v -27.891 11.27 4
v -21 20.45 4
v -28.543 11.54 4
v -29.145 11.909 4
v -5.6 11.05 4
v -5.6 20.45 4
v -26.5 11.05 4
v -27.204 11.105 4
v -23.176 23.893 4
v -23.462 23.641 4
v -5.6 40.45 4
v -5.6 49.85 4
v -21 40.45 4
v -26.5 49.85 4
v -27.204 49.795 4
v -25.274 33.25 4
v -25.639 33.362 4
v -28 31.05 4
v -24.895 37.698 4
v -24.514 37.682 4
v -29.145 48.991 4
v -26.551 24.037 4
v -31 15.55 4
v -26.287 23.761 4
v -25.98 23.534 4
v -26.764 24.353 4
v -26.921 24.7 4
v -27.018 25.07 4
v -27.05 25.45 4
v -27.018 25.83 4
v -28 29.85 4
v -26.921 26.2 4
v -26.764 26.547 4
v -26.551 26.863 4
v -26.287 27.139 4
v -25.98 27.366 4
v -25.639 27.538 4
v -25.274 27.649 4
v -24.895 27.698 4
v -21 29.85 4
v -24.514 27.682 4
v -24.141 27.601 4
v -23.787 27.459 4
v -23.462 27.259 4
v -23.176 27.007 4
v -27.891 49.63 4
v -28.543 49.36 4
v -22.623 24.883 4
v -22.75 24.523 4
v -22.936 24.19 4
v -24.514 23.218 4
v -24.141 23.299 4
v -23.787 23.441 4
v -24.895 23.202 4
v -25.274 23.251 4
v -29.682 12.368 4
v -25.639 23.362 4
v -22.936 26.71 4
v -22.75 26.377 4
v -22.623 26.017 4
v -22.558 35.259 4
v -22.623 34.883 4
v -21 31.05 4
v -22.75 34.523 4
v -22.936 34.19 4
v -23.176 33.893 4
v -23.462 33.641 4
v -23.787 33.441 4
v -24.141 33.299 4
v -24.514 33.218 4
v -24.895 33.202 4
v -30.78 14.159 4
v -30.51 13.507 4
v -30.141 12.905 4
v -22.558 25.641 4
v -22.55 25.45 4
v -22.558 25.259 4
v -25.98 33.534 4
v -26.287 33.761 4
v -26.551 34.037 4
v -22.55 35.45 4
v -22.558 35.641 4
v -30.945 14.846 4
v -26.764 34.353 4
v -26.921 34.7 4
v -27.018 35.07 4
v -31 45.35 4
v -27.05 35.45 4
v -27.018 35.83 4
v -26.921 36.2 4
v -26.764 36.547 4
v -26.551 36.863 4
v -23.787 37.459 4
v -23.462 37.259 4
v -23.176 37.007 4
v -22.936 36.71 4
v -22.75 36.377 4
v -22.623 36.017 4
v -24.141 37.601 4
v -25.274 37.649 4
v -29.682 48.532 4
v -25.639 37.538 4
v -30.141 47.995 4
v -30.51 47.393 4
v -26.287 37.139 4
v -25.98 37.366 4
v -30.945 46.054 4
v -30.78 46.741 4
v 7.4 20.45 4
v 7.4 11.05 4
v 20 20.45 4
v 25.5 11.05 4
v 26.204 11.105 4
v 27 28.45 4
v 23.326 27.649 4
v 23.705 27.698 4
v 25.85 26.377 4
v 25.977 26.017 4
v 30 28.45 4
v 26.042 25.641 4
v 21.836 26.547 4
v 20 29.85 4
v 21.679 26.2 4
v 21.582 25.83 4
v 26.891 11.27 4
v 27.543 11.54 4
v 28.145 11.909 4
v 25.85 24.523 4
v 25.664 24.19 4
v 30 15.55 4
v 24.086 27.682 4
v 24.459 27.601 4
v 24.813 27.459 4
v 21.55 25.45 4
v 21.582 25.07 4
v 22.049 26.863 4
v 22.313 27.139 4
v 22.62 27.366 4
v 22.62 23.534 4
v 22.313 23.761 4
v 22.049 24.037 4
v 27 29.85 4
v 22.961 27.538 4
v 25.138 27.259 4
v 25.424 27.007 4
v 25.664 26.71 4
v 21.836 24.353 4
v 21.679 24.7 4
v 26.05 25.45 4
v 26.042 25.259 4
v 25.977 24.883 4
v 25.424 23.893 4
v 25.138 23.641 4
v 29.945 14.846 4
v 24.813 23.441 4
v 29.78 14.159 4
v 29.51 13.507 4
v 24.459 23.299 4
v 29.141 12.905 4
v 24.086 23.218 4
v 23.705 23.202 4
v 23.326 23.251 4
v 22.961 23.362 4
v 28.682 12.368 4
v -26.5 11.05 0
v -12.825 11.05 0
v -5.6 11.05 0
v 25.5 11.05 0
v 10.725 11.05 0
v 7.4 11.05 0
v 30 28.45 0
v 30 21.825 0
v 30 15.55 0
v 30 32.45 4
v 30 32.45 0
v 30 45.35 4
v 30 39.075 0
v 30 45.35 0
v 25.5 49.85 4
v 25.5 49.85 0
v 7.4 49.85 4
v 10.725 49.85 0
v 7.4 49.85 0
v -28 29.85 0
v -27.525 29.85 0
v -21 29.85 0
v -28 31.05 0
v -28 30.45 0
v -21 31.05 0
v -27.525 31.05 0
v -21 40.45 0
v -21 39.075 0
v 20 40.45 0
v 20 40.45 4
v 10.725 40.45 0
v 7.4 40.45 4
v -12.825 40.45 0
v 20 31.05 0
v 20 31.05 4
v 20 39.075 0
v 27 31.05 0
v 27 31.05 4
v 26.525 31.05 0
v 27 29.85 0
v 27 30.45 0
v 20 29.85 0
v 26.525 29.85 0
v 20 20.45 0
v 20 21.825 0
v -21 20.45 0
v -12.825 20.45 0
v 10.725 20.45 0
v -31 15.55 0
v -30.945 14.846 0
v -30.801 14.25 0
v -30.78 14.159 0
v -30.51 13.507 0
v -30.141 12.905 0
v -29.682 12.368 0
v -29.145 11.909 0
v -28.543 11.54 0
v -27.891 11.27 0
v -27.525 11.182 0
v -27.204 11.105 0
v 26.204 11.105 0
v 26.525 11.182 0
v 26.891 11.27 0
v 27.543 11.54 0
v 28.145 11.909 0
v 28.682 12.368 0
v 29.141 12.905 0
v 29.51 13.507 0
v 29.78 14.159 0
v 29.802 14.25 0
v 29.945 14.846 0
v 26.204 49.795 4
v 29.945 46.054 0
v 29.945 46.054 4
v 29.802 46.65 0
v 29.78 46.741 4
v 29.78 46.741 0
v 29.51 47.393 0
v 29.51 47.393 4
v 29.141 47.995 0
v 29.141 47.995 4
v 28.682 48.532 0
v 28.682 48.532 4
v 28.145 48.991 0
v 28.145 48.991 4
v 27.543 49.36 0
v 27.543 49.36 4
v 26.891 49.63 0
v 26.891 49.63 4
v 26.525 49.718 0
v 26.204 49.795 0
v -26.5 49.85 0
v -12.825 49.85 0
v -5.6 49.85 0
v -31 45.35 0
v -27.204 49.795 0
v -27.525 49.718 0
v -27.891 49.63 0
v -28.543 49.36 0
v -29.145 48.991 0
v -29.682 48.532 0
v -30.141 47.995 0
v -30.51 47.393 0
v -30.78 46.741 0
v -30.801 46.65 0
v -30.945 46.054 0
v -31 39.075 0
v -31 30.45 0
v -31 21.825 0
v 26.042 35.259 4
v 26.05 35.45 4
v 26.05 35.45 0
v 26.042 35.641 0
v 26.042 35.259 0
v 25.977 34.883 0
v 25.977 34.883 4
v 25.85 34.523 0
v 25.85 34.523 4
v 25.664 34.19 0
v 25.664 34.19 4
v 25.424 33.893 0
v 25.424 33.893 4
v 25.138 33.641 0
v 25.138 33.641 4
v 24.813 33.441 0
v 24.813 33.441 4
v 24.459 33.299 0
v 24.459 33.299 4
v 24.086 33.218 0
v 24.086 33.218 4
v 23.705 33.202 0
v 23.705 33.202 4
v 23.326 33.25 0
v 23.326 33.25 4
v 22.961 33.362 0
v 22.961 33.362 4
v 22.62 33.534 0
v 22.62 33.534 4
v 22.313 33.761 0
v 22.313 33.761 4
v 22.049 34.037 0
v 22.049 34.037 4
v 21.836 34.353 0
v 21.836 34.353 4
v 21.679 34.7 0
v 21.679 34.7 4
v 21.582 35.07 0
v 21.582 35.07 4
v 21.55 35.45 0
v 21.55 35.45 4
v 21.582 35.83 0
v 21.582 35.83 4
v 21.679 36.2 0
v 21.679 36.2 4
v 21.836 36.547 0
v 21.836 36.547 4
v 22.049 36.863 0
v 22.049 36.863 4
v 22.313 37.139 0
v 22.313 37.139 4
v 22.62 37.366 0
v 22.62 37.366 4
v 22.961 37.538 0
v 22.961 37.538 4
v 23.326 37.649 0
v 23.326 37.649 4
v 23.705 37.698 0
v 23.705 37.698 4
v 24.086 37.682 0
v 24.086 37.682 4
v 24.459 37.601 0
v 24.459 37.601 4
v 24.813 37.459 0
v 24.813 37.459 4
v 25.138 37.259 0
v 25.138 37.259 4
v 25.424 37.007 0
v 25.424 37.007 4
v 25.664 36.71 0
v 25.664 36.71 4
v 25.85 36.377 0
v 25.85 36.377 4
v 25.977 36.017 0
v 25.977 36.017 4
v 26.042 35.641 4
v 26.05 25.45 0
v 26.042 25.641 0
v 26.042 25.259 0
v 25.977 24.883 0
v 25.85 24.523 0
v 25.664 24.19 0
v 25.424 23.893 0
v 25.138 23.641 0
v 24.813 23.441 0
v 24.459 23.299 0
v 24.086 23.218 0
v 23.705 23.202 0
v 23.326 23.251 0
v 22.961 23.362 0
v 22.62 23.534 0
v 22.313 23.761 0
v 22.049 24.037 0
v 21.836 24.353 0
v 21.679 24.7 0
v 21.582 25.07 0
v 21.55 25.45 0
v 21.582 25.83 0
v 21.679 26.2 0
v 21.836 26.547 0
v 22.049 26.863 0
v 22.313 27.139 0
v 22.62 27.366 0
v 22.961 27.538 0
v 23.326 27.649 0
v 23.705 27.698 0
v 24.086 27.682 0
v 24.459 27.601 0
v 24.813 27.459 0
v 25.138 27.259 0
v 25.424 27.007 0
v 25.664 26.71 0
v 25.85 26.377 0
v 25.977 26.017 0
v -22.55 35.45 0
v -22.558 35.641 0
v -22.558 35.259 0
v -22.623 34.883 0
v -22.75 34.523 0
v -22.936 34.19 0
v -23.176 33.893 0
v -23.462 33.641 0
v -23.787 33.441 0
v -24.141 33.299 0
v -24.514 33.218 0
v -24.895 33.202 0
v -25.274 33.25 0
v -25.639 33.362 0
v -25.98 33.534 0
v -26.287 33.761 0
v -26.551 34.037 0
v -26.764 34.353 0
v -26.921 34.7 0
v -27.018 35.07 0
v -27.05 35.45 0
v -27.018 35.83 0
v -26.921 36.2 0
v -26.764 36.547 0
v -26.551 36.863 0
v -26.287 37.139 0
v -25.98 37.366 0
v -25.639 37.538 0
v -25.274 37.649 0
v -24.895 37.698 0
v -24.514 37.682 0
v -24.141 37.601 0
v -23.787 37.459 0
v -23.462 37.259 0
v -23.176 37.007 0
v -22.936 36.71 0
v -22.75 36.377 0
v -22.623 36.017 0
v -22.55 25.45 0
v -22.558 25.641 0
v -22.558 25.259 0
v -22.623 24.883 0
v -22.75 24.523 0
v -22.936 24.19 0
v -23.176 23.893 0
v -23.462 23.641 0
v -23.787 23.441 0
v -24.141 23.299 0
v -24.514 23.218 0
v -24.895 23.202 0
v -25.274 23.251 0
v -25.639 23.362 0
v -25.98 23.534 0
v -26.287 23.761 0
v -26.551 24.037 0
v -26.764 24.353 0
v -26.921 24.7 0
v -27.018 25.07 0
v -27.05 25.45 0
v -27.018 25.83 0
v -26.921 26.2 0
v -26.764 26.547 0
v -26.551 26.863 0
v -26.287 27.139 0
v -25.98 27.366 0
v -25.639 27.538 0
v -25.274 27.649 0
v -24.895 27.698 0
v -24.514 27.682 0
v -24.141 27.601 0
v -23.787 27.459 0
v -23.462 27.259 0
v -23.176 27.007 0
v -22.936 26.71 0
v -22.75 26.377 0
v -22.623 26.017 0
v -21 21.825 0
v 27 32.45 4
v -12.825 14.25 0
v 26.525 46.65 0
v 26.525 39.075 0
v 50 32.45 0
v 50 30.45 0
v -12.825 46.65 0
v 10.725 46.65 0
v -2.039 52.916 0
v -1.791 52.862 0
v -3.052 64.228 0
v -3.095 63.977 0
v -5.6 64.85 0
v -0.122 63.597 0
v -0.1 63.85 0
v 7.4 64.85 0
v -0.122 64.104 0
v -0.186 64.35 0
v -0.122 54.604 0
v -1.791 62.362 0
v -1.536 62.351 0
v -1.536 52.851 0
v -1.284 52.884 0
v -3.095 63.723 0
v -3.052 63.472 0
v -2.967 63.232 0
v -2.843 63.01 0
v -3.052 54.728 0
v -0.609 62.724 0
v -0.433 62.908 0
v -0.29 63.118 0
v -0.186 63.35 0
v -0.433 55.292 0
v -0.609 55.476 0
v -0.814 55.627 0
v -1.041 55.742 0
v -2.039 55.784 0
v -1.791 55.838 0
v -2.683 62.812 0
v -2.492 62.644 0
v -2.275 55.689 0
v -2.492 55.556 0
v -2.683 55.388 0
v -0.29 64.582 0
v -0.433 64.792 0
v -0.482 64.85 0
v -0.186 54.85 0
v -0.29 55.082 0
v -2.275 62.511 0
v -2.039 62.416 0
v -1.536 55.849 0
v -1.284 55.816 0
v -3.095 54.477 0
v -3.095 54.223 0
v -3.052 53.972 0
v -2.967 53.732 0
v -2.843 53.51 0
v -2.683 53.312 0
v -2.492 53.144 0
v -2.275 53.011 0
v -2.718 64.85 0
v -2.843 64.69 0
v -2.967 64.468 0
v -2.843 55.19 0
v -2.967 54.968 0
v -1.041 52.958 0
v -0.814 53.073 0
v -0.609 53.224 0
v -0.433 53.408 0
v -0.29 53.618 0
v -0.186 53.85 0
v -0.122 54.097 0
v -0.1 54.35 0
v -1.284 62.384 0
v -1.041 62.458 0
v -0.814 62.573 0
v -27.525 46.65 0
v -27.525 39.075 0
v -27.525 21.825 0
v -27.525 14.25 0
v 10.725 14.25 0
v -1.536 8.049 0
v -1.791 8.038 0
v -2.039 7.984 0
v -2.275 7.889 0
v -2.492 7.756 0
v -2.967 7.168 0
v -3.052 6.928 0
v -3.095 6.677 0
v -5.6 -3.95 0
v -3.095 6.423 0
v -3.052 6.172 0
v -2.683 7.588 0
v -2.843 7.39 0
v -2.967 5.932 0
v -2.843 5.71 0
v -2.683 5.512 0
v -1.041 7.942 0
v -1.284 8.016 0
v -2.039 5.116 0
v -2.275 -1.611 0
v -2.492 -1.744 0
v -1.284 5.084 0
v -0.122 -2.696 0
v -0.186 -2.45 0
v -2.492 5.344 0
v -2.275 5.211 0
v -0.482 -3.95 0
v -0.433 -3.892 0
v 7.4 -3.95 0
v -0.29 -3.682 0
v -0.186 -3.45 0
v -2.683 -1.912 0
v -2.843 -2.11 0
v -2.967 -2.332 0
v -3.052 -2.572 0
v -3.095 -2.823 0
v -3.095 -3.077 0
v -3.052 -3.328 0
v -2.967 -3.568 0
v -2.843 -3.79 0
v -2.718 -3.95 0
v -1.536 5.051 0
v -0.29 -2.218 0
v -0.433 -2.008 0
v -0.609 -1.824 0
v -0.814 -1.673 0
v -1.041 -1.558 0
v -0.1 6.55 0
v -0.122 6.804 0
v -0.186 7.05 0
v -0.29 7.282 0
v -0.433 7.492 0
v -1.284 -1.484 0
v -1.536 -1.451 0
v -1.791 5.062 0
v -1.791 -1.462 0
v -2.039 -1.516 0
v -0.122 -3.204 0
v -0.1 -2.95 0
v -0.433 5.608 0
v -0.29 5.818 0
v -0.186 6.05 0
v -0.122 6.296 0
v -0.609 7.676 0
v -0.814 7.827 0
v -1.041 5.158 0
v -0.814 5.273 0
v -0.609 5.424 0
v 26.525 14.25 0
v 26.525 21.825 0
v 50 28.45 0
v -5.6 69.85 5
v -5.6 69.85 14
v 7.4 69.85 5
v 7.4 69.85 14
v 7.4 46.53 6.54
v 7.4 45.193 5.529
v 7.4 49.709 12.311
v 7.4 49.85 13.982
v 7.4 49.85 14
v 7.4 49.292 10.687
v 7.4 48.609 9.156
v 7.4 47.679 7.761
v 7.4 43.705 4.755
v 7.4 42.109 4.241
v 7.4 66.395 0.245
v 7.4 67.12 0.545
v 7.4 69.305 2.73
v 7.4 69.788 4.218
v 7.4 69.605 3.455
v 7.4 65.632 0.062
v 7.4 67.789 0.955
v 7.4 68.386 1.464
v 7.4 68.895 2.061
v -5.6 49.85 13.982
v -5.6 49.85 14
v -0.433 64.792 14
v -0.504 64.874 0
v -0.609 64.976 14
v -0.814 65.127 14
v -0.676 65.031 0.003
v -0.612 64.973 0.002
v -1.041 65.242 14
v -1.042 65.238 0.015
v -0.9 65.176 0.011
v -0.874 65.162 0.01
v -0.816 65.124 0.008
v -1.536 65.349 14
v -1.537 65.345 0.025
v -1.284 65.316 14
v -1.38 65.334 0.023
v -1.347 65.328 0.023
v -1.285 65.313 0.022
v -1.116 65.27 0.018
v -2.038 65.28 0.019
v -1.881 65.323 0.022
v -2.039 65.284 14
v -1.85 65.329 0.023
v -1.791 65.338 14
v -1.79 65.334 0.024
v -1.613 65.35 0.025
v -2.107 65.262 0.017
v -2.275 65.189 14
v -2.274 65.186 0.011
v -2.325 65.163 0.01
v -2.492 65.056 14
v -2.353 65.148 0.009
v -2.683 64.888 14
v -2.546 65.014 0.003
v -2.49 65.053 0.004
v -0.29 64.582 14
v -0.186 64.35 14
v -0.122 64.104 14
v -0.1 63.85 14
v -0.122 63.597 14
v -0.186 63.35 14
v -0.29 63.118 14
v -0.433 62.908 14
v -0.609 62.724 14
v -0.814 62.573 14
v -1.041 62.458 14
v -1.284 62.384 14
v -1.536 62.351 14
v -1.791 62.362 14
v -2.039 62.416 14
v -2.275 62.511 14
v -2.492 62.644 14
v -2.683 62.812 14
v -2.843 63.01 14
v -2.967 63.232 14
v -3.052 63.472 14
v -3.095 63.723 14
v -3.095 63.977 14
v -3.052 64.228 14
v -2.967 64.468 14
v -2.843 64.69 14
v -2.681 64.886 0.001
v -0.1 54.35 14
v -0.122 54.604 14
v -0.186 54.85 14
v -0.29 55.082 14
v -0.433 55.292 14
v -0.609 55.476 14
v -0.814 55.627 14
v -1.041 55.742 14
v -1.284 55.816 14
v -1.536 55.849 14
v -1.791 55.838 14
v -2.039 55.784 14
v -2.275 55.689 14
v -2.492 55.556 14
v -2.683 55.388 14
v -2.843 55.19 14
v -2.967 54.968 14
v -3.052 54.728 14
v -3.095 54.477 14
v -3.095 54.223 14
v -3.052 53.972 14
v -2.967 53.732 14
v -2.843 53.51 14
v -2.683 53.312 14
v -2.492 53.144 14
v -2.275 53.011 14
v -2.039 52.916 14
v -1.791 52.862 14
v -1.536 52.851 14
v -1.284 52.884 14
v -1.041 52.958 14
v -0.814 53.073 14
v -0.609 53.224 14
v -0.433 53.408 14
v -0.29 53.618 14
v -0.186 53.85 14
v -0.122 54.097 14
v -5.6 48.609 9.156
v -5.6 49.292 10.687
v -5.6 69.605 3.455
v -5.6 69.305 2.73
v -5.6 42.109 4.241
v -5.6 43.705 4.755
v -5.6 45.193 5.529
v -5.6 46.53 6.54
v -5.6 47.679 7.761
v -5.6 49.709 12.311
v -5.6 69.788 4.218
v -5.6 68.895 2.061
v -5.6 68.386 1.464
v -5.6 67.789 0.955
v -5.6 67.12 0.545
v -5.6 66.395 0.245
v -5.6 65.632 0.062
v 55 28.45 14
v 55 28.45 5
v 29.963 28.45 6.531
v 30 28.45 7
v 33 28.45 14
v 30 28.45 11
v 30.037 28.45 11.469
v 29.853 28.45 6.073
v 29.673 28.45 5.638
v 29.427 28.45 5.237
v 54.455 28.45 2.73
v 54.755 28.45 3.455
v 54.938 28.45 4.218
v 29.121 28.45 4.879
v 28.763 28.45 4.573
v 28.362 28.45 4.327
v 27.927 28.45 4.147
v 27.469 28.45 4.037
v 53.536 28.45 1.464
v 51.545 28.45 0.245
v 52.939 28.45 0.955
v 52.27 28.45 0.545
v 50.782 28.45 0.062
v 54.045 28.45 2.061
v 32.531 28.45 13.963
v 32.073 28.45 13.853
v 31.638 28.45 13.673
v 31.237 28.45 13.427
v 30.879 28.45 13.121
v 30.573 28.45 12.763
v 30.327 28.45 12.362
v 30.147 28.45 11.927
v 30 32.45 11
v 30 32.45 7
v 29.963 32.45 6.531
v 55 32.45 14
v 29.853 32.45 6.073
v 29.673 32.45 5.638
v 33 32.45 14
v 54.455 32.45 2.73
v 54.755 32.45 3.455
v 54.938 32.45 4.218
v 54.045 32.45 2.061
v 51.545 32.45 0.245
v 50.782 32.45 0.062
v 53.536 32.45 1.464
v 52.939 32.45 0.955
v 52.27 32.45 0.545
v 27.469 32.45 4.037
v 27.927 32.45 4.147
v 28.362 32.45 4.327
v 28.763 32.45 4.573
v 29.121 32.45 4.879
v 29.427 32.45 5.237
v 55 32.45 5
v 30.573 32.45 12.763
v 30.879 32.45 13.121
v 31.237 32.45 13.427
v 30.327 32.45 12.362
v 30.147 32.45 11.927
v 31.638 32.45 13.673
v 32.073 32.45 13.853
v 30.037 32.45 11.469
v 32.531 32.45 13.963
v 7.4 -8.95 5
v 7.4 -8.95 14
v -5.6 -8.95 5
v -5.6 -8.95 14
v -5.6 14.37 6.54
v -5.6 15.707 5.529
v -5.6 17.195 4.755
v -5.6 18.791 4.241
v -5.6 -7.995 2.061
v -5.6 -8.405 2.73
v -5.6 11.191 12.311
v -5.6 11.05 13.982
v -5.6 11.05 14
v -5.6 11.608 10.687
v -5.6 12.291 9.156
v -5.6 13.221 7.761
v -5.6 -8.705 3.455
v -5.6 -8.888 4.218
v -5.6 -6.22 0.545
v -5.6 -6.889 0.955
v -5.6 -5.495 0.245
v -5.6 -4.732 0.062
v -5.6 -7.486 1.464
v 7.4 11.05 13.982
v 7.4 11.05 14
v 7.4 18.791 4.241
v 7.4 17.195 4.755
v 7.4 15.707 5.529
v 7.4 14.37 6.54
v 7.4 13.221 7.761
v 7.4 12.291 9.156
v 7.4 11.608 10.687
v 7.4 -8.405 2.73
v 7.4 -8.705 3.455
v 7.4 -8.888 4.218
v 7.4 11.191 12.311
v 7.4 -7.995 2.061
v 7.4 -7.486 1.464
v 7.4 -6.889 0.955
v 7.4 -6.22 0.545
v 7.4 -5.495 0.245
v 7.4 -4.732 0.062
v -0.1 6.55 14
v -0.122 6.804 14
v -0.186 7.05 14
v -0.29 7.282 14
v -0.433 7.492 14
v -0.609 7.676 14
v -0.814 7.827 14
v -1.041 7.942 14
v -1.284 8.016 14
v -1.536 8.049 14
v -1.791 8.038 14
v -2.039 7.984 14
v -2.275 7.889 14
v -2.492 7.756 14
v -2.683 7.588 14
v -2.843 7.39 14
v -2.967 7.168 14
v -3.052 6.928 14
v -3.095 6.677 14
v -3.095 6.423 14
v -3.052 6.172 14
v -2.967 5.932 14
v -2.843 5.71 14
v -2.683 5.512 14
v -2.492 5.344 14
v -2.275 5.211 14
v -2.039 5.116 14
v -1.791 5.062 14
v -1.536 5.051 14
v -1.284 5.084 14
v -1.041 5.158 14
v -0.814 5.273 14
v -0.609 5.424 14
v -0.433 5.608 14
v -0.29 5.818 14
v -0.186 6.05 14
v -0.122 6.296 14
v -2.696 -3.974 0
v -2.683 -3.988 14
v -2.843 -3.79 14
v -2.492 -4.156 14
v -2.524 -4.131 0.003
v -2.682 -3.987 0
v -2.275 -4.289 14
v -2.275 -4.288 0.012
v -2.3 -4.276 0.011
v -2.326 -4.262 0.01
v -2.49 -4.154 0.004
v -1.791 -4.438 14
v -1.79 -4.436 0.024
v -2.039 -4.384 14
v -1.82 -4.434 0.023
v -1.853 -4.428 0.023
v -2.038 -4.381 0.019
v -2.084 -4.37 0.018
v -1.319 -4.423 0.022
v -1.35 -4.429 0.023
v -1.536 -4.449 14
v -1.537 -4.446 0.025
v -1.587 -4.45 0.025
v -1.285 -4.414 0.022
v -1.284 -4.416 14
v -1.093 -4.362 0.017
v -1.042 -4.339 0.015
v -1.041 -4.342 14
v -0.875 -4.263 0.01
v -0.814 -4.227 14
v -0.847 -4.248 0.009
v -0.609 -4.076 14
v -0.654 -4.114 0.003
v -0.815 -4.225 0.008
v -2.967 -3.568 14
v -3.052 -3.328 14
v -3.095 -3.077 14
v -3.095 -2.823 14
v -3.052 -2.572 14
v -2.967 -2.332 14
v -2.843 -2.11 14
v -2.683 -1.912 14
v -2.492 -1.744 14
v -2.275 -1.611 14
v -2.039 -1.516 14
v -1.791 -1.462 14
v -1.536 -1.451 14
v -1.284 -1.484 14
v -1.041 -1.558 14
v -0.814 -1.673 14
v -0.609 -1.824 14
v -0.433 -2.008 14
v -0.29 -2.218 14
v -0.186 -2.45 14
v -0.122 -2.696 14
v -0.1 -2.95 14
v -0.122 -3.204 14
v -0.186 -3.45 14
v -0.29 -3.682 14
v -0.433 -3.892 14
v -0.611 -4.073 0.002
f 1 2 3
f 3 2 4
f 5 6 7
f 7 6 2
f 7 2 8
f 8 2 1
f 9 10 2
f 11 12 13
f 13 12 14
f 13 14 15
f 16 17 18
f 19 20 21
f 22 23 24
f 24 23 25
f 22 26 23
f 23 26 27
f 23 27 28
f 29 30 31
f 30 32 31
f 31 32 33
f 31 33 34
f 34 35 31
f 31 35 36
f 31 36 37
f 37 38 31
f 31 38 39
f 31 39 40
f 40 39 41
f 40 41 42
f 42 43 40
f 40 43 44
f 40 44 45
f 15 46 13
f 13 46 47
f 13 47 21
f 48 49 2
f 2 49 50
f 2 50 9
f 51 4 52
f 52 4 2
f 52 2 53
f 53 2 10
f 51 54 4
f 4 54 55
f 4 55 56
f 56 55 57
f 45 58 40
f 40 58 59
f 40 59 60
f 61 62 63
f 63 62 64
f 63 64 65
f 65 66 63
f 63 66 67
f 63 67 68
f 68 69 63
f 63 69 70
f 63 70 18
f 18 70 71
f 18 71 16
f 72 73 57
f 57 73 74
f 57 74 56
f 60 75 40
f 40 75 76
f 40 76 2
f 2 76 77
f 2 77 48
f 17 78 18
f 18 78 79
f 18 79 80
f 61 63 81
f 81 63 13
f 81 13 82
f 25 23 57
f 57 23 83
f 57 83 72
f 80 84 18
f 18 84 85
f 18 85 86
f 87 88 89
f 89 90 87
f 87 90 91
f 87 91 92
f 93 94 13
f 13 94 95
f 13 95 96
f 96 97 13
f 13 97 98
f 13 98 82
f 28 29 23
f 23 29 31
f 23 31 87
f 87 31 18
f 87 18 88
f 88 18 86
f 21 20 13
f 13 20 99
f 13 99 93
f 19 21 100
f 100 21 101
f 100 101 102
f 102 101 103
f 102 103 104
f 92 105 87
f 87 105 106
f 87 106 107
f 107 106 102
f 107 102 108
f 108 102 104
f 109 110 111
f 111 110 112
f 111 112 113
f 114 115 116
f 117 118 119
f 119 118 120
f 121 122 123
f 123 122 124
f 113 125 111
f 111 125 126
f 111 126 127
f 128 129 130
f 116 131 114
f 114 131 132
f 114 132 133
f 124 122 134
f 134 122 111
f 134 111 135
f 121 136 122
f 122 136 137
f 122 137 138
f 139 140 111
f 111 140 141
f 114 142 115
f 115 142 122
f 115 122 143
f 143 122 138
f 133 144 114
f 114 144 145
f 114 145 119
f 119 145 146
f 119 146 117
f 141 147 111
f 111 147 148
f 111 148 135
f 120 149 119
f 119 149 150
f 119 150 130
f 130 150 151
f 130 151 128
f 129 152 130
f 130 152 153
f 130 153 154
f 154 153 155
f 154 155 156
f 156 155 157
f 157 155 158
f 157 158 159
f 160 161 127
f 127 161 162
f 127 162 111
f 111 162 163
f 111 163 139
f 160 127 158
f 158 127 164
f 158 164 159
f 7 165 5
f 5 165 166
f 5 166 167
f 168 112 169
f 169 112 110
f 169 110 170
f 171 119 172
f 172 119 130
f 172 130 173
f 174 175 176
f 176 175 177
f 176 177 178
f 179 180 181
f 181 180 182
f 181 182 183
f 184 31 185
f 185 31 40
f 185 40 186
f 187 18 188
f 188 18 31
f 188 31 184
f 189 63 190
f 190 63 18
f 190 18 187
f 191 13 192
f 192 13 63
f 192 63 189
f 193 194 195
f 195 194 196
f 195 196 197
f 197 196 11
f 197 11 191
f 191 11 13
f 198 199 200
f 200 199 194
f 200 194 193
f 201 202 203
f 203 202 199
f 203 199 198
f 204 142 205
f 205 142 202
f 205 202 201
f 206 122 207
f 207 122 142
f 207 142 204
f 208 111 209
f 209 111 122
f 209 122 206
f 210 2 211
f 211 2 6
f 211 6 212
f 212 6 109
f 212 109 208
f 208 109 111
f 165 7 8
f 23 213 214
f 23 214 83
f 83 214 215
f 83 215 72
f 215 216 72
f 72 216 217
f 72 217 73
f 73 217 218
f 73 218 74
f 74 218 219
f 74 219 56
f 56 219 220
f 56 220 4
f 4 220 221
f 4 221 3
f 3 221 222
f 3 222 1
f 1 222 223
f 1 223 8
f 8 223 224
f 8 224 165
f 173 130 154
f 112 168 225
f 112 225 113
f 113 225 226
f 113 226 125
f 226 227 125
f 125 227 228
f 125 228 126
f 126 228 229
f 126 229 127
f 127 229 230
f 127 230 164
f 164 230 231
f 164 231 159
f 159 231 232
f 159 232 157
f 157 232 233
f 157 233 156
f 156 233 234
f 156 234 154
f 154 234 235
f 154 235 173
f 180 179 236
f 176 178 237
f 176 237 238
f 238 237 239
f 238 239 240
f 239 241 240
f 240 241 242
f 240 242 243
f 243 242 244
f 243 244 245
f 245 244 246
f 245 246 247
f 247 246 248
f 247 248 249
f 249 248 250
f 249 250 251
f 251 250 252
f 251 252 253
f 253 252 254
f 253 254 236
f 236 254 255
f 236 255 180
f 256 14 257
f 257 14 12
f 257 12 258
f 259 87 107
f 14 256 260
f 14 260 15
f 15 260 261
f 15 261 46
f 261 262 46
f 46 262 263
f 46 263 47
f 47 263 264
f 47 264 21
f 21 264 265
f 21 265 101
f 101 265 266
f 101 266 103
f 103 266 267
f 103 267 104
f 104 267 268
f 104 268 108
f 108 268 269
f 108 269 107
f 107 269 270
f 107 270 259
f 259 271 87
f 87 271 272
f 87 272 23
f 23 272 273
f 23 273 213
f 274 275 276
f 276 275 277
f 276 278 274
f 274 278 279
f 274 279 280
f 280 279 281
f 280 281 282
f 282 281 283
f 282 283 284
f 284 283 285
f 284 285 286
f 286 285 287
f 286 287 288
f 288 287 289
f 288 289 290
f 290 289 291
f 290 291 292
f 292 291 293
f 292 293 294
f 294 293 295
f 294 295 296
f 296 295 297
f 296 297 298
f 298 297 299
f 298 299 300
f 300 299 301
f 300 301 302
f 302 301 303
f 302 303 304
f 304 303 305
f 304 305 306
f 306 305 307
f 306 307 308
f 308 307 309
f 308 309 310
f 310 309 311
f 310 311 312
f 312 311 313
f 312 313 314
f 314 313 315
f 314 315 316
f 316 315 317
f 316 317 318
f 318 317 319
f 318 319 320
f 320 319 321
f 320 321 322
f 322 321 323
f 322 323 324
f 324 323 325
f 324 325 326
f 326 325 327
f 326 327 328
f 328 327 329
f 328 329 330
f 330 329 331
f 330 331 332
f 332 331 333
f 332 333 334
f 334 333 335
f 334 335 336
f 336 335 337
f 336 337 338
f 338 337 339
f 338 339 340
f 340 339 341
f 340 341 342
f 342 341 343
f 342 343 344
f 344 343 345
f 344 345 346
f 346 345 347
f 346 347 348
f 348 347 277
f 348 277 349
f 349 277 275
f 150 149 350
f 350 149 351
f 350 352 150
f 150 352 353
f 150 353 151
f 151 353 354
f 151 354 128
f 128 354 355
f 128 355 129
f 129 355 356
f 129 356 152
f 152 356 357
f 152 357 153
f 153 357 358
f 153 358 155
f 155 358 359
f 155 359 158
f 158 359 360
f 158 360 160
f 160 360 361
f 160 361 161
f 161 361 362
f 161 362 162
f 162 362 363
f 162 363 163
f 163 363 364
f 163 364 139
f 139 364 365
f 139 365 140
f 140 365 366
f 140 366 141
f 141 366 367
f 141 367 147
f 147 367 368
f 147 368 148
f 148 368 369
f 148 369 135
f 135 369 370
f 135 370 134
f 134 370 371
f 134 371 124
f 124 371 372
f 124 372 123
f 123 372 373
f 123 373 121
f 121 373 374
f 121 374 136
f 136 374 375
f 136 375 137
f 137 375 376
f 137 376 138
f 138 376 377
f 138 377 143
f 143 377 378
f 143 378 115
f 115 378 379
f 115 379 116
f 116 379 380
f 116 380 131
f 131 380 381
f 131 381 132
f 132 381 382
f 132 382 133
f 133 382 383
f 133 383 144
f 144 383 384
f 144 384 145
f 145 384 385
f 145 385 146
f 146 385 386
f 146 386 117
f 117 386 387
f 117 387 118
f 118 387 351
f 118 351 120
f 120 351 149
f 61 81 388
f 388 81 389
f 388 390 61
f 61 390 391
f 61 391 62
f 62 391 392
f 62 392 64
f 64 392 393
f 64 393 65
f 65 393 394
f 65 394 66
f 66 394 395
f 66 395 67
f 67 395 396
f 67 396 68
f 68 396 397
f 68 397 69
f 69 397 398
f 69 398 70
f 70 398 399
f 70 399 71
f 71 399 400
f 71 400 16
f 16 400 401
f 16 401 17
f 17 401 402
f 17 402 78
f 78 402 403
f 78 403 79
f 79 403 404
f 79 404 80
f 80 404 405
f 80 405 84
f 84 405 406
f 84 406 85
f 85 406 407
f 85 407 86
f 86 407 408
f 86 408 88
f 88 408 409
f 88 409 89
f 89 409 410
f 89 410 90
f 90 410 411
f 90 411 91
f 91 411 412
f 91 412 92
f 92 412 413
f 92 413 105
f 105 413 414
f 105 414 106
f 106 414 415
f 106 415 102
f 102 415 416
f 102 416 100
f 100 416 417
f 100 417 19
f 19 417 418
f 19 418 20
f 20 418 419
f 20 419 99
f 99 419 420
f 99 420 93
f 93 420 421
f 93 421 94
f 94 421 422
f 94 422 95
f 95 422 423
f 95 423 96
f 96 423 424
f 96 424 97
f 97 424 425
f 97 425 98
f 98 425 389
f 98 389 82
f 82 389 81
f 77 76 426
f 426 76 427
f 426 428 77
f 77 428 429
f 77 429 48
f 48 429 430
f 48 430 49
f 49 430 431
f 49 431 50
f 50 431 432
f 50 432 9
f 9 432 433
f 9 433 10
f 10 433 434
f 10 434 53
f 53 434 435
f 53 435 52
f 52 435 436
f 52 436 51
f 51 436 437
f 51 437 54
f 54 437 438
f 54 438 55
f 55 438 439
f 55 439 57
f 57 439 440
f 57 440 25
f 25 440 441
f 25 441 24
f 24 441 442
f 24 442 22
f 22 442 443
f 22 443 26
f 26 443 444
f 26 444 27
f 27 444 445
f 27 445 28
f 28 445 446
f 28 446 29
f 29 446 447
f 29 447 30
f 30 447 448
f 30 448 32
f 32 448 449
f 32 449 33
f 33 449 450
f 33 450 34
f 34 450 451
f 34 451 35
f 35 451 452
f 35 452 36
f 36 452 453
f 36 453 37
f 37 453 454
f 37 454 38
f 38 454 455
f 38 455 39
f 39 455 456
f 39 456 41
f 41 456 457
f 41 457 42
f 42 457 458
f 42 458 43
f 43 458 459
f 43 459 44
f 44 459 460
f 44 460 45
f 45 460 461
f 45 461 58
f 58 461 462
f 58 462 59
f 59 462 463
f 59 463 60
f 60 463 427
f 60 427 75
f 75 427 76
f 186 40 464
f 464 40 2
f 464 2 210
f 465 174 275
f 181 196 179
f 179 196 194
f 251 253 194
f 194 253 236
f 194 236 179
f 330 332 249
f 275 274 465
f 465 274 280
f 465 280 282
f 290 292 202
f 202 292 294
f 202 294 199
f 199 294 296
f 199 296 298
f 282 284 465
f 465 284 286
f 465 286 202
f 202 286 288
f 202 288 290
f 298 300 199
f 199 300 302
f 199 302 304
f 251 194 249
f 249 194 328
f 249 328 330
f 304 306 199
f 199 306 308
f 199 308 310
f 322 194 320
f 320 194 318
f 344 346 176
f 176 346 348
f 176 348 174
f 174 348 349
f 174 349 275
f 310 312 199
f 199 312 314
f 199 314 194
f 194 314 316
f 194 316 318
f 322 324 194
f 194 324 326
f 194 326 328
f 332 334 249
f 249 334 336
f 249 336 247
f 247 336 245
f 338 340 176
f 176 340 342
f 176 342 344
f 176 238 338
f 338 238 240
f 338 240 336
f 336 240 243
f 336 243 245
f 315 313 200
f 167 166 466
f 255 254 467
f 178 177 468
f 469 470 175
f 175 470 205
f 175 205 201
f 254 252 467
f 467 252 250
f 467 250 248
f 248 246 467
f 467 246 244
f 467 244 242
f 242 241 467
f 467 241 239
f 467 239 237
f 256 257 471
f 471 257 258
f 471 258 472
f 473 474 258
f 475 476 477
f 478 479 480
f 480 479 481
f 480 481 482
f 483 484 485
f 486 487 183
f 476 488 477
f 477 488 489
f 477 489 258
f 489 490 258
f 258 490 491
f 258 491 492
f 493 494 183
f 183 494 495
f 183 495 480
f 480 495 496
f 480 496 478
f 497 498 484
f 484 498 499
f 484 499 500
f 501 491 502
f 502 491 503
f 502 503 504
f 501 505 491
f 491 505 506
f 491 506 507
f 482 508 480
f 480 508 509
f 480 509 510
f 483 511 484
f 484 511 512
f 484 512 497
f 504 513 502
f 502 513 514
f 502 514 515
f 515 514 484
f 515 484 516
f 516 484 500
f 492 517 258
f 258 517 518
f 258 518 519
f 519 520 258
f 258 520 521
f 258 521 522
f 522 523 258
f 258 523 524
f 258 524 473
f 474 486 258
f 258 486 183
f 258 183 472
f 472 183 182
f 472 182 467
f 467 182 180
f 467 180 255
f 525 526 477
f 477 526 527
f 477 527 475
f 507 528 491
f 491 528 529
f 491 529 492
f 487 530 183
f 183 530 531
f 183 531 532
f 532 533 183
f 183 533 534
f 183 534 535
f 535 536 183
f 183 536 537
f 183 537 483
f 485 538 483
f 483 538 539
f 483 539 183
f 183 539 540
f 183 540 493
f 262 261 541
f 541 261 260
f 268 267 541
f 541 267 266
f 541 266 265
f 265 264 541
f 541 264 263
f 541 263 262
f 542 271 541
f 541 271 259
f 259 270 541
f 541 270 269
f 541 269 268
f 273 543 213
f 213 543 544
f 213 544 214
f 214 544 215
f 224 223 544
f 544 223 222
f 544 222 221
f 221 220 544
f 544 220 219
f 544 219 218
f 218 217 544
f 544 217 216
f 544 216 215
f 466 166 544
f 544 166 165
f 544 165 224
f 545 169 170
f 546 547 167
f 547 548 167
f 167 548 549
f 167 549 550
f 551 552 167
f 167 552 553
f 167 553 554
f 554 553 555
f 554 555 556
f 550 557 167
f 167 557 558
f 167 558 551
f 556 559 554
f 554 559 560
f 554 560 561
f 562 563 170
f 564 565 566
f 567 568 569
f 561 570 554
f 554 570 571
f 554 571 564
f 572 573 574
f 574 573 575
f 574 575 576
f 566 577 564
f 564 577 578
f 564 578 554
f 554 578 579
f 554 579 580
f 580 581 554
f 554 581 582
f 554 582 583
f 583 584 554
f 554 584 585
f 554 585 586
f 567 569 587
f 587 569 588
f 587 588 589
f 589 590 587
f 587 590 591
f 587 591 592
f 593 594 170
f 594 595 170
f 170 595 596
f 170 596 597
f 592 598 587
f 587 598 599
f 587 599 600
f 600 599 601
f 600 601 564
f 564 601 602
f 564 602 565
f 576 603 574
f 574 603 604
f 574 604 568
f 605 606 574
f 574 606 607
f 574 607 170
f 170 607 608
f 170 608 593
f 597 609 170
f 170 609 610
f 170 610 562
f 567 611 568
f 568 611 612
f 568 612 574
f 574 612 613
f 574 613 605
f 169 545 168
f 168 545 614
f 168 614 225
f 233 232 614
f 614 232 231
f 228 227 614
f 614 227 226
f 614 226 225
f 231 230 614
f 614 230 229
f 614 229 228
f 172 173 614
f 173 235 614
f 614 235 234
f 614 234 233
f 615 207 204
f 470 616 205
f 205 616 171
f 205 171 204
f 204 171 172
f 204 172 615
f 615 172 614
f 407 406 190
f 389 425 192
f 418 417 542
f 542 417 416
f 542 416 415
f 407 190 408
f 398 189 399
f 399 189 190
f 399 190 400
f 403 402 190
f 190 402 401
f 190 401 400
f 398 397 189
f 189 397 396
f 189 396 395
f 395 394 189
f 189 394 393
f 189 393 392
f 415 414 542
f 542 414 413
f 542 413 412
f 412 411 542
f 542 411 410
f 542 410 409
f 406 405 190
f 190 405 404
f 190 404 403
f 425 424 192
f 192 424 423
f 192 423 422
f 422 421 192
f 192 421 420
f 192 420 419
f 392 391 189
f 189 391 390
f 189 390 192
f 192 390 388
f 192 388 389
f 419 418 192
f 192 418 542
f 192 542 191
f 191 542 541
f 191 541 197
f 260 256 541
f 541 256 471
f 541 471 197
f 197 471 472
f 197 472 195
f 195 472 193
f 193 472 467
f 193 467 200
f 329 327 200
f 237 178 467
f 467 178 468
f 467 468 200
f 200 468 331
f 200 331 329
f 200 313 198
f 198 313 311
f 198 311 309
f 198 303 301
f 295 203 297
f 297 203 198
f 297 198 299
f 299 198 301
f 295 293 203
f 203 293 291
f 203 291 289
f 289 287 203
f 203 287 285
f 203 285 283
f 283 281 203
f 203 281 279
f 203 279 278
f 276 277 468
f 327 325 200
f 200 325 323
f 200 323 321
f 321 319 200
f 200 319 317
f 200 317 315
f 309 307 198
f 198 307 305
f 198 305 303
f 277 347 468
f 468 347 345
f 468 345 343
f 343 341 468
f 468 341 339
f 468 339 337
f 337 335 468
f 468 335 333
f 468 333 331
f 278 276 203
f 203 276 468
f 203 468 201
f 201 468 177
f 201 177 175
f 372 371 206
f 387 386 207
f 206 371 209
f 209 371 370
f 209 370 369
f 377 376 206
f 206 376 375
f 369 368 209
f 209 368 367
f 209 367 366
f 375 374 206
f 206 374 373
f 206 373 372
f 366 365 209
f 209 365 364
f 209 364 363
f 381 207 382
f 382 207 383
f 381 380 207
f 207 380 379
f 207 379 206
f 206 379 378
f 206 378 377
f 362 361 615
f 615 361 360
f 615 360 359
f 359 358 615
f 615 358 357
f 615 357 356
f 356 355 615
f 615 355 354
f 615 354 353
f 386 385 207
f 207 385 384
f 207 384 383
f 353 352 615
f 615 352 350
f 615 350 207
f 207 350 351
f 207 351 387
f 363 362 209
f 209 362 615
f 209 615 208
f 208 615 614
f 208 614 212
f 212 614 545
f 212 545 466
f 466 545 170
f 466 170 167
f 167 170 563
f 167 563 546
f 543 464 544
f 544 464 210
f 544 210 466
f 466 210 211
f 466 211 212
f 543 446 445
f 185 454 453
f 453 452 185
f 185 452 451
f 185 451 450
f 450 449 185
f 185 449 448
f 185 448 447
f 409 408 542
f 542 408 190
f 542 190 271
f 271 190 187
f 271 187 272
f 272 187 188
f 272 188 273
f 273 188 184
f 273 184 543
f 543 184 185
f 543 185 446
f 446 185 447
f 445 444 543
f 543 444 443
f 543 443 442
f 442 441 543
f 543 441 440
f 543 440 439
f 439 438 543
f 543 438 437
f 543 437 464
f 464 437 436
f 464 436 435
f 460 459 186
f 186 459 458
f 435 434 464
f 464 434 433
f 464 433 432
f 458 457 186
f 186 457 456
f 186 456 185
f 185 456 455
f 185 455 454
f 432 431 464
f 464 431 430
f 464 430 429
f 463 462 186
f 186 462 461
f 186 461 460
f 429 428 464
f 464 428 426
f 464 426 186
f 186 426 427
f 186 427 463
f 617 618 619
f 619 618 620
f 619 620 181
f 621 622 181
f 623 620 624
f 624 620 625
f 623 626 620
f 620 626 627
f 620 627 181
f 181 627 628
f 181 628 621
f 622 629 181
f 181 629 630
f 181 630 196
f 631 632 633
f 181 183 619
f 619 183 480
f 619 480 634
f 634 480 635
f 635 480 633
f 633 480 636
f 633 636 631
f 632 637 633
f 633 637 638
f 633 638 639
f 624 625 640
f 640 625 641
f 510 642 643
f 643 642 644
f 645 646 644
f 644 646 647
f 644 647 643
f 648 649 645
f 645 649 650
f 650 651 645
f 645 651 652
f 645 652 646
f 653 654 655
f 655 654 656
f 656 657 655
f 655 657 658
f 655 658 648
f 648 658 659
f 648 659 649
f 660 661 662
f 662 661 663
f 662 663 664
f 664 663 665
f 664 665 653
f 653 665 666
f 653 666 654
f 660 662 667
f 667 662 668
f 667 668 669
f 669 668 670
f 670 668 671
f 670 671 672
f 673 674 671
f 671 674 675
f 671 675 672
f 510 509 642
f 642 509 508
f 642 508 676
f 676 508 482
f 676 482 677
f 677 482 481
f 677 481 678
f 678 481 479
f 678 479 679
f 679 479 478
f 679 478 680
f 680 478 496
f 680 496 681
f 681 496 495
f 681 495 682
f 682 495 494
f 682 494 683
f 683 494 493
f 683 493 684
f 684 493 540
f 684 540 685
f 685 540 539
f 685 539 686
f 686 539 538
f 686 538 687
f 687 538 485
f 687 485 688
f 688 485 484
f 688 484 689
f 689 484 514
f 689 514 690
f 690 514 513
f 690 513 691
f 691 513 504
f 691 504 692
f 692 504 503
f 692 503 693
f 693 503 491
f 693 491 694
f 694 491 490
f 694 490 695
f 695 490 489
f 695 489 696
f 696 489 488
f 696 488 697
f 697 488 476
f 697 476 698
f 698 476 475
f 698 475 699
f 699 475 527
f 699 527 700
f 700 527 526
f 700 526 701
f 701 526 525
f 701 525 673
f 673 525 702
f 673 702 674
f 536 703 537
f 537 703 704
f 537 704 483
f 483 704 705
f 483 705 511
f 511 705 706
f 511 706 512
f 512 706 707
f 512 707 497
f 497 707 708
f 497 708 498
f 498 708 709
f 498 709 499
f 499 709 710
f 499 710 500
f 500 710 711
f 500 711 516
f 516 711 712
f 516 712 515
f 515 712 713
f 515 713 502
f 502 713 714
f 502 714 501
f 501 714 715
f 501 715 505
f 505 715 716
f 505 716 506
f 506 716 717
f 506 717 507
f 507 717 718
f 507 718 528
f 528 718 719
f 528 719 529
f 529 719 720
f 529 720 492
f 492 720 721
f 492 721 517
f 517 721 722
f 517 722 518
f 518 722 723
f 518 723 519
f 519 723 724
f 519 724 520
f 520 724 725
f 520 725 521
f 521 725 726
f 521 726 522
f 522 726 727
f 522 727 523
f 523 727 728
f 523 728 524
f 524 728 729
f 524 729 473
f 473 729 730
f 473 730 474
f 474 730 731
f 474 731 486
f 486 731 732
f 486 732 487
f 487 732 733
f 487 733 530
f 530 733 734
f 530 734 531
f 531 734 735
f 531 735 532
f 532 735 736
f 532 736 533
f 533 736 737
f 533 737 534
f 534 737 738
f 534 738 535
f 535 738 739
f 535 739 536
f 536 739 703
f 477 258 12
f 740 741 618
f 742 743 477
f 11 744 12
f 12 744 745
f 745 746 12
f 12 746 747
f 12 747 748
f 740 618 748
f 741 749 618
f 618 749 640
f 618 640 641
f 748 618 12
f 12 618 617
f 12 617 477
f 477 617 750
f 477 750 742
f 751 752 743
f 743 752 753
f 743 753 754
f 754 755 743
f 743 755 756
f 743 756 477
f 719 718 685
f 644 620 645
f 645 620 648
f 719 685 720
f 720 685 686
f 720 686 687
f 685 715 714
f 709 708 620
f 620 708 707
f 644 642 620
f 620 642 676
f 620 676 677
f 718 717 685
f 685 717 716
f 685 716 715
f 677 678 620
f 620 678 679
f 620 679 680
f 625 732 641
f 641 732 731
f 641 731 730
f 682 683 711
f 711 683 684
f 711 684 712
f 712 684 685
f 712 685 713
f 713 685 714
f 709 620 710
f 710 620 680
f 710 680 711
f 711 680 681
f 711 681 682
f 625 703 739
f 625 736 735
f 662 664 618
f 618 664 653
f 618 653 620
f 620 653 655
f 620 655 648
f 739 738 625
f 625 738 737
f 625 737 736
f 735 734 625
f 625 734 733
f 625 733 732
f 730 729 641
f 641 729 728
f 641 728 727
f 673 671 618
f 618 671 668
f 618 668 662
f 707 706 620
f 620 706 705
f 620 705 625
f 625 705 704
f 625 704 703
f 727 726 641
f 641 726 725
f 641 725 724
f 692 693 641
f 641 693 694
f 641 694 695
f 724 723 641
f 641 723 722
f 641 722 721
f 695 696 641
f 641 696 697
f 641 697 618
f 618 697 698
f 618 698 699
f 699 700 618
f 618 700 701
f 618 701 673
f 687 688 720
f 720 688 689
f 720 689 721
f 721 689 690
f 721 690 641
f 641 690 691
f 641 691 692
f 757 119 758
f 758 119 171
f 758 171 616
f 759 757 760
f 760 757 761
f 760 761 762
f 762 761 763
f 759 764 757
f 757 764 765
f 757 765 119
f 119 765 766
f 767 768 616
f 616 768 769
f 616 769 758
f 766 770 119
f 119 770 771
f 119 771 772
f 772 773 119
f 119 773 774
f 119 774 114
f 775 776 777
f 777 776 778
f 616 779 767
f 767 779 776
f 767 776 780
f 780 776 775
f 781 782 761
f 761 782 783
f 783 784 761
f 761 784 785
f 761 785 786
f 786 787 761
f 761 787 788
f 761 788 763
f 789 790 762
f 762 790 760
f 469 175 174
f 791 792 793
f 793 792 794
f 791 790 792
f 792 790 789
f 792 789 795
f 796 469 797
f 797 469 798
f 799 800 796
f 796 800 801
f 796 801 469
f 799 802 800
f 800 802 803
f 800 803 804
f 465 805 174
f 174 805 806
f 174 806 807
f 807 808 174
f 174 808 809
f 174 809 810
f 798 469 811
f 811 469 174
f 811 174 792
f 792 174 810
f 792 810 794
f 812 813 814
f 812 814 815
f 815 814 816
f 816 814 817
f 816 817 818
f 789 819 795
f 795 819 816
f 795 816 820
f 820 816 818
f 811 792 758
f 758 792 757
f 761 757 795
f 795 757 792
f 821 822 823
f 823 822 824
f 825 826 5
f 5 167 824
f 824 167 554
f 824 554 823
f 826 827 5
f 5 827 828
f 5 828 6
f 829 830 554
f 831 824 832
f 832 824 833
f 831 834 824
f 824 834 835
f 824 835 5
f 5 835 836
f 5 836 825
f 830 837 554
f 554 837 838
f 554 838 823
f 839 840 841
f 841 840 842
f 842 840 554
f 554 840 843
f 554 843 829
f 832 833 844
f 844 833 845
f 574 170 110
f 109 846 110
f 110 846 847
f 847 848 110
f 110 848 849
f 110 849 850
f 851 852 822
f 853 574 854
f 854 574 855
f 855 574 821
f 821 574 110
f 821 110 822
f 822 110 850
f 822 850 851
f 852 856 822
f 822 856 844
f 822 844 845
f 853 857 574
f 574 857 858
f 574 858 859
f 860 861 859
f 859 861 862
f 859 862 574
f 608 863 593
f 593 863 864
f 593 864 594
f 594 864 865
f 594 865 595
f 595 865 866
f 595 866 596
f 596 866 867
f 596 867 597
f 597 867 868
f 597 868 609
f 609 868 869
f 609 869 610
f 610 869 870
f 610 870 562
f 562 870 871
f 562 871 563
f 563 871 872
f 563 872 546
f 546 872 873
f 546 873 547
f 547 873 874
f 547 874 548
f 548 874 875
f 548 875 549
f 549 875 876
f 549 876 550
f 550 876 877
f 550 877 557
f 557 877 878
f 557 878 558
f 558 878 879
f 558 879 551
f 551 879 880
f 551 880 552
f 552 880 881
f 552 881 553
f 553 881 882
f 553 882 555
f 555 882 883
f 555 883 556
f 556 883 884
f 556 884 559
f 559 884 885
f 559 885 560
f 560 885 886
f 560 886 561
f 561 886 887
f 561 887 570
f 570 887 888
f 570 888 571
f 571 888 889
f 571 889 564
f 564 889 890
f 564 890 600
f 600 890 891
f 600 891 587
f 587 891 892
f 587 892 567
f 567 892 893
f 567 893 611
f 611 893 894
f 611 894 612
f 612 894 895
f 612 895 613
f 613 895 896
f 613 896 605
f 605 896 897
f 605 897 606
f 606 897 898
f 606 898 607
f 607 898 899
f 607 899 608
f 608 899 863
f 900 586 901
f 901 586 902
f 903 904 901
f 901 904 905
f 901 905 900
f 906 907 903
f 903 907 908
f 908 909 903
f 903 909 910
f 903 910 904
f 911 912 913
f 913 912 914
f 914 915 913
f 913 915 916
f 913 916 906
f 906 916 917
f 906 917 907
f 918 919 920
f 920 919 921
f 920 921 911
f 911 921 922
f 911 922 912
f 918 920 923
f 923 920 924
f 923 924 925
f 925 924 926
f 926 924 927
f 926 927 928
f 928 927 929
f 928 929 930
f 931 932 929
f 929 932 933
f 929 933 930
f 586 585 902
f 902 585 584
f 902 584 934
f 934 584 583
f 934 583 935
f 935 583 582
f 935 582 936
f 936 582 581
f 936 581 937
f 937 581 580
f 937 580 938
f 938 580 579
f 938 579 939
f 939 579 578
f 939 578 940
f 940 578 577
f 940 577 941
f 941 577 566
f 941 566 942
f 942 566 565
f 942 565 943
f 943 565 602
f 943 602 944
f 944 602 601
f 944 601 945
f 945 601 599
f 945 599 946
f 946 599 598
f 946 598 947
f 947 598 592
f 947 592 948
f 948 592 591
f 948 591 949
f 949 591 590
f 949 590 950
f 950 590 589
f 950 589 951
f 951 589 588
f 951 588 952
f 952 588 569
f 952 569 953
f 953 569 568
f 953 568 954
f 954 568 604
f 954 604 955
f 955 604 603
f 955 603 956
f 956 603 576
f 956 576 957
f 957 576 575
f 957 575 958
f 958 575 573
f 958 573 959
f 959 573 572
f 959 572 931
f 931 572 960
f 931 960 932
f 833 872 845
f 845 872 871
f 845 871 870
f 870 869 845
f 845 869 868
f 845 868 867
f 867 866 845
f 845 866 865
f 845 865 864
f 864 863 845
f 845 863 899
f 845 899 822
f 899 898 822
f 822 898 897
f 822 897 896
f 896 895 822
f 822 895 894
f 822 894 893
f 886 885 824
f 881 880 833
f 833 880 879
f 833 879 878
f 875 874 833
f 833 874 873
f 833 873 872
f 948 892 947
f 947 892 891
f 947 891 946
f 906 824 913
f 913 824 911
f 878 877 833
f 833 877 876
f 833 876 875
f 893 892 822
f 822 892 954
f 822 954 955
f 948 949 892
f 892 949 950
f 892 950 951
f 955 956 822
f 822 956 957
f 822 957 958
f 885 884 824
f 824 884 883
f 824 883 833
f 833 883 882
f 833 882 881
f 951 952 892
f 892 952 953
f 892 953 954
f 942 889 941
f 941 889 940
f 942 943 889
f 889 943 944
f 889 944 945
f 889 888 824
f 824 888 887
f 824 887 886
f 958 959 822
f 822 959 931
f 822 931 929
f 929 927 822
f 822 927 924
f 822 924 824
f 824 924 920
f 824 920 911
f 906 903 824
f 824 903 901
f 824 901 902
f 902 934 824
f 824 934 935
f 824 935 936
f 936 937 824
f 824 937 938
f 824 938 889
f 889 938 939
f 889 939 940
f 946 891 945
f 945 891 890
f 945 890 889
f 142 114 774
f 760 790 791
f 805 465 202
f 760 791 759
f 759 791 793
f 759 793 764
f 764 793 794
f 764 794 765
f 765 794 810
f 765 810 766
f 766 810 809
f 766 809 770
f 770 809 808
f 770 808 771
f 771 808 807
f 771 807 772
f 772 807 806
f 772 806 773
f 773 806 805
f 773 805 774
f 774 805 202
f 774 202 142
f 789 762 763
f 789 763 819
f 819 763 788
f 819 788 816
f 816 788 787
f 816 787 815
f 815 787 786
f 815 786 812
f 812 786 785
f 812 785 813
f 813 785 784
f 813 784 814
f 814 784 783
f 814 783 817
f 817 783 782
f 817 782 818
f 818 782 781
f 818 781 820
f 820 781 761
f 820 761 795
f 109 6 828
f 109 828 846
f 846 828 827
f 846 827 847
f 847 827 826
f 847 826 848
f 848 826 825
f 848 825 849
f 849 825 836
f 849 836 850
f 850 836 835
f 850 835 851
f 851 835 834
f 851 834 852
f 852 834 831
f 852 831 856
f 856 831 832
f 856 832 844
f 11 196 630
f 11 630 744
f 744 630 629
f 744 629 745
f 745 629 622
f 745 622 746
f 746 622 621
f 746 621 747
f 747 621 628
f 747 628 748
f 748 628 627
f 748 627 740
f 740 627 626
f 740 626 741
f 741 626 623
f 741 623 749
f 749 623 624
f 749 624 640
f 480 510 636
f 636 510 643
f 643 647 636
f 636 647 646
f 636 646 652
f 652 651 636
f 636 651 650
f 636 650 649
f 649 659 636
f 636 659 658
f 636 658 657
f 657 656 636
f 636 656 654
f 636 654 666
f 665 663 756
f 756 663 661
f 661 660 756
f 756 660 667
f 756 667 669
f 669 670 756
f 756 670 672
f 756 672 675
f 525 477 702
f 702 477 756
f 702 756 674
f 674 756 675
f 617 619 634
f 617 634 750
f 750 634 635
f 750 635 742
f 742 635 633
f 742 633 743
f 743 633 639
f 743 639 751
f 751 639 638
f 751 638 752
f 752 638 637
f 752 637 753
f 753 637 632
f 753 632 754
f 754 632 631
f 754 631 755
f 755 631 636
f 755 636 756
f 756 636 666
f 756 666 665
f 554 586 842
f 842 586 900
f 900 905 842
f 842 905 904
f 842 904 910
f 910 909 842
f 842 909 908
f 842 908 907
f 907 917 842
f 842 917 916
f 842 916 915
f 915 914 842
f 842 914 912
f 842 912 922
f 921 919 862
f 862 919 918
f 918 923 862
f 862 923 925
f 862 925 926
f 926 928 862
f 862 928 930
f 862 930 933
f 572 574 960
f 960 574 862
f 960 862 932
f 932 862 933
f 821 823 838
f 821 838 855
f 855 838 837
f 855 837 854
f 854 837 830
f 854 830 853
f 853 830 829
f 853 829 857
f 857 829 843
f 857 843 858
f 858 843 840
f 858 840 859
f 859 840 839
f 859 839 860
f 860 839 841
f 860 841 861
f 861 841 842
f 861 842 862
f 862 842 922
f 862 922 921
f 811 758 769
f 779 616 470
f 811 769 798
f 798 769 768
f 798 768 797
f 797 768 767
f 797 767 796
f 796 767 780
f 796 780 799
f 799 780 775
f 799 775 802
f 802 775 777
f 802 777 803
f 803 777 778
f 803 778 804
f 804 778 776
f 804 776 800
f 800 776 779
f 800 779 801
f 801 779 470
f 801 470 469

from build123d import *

# Parameters (mm, degrees)
ESBO_O1_R                     = 2.25
RESSALTO_EXTRUS_O1_DEPTH      = 4
RESSALTO_EXTRUS_O2_DEPTH      = 10
RESSALTO_EXTRUS_O2_DEPTH_BACK = 4
ESBO_O2_W                     = 10
ESBO_O2_H                     = 20
ESBO_O2_R                     = 1.5
ESBO_O2_W_2                   = 3
FILETE1_R                     = 3
FILETE2_R                     = 3
FILETE3_R                     = 10
FILETE4_R                     = 10
FILETE6_R                     = 5
FILETE7_R                     = 5
FILETE8_R                     = 5


# Some blends are built 0.0001 mm under size
with BuildPart() as part:
    # Esboço1 → Ressalto-extrusão1 (new body)
    with BuildSketch(Plane.XY):
        with BuildLine():
            Line((30, 15.55), (30, 30.45))
            Line((30, 30.45), (30, 45.35))
            ThreePointArc((30, 45.35), (28.681980515, 48.531980515), (25.5, 49.85))
            Line((25.5, 49.85), (24.5, 49.85))
            Line((24.5, 49.85), (-26.5, 49.85))
            ThreePointArc((-26.5, 49.85), (-29.681980515, 48.531980515), (-31, 45.35))
            Line((-31, 45.35), (-31, 30.45))
            Line((-31, 30.45), (-31, 15.55))
            ThreePointArc((-31, 15.55), (-29.681980515, 12.368019485), (-26.5, 11.05))
            Line((-26.5, 11.05), (25.5, 11.05))
            ThreePointArc((25.5, 11.05), (28.681980515, 12.368019485), (30, 15.55))
        make_face()
        with Locations((-24.8, 25.45)):
            Circle(ESBO_O1_R, mode=Mode.SUBTRACT)
        with Locations((23.8, 25.45)):
            Circle(ESBO_O1_R, mode=Mode.SUBTRACT)
        with Locations((-24.8, 35.45)):
            Circle(ESBO_O1_R, mode=Mode.SUBTRACT)
        Polygon((27, 31.05), (27, 30.45), (27, 29.85), (20, 29.85), (20, 20.45), (-21, 20.45), (-21, 29.85), (-28, 29.85), (-28, 31.05), (-21, 31.05), (-21, 40.45), (20, 40.45), (20, 31.05), align=None, mode=Mode.SUBTRACT)
        with Locations((23.8, 35.45)):
            Circle(ESBO_O1_R, mode=Mode.SUBTRACT)
    extrude(amount=RESSALTO_EXTRUS_O1_DEPTH)

    # Esboço2 → Ressalto-extrusão2 (add, two sides: drawn at the far end of the back side and taken through both)
    # profile 1 of 5: a face of its own
    with BuildSketch(Plane.XY.offset(4).offset(-RESSALTO_EXTRUS_O2_DEPTH_BACK)):
        with Locations((-0.6, 59.85)):
            Rectangle(ESBO_O2_W, ESBO_O2_H)
        with Locations((-1.6, 54.35)):
            Circle(ESBO_O2_R, mode=Mode.SUBTRACT)
        with Locations((-1.6, 63.85)):
            Circle(ESBO_O2_R, mode=Mode.SUBTRACT)
    # profile 2 of 5: a face of its own
    with BuildSketch(Plane.XY.offset(4).offset(-RESSALTO_EXTRUS_O2_DEPTH_BACK)):
        with Locations((5.9, 59.85)):
            Rectangle(ESBO_O2_W_2, ESBO_O2_H)
    # profile 3 of 5: a face of its own
    with BuildSketch(Plane.XY.offset(4).offset(-RESSALTO_EXTRUS_O2_DEPTH_BACK)):
        Polygon((30, 32.45), (30, 30.45), (30, 28.45), (55, 28.45), (55, 32.45), align=None)
    # profile 4 of 5: a face of its own
    with BuildSketch(Plane.XY.offset(4).offset(-RESSALTO_EXTRUS_O2_DEPTH_BACK)):
        with Locations((-0.6, 1.05)):
            Rectangle(ESBO_O2_W, ESBO_O2_H)
        with Locations((-1.6, -2.95)):
            Circle(ESBO_O2_R, mode=Mode.SUBTRACT)
        with Locations((-1.6, 6.55)):
            Circle(ESBO_O2_R, mode=Mode.SUBTRACT)
    # profile 5 of 5: a face of its own
    with BuildSketch(Plane.XY.offset(4).offset(-RESSALTO_EXTRUS_O2_DEPTH_BACK)):
        with Locations((5.9, 1.05)):
            Rectangle(ESBO_O2_W_2, ESBO_O2_H)
    extrude(amount=RESSALTO_EXTRUS_O2_DEPTH + RESSALTO_EXTRUS_O2_DEPTH_BACK)

    # Filete1
    filete1_edges = [part.edges().sort_by_distance(p)[0] for p in [
        (30, 30.45, 4),
    ]]
    fillet(filete1_edges, radius=FILETE1_R - 0.0001)  # a hair under: the kernel refuses the full size

    # Filete2
    filete2_edges = [part.edges().sort_by_distance(p)[0] for p in [
        (30, 30.45, 14),
    ]]
    fillet(filete2_edges, radius=FILETE2_R)

    # Filete3
    # the kernel refuses this fillet: 10 mm, written as the material it adds along each edge
    with BuildSketch(Plane(origin=(-5.6, 11.05, 4), x_dir=(0, 1, 0), z_dir=(1, 0, 0))) as filete3_piece_1:
        with BuildLine():
            CenterArc((10, 9.981983771), FILETE3_R, 180, 86.560187232)
            Line((0, 9.981983771), (0, 0))
            Line((0, 0), (9.4, 0))
        make_face()
    extrude(amount=13)

    # Filete4
    # the kernel refuses this fillet: 10 mm, written as the material it adds along each edge
    with BuildSketch(Plane(origin=(-5.6, 49.85, 4), x_dir=(0, -1, 0), z_dir=(1, 0, 0))) as filete4_piece_1:
        with BuildLine():
            CenterArc((10, -9.981983771), FILETE4_R, 93.439812768, 86.560187232)
            Line((0, -9.981983771), (0, 0))
            Line((0, 0), (9.4, 0))
        make_face()
    extrude(amount=13)

    # Filete6
    # the kernel refuses this fillet: 5 mm, written as the material it takes off along each edge
    with BuildSketch(Plane(origin=(-18.1, 69.85, 0), x_dir=(0, -1, 0), z_dir=(1, 0, 0))) as filete6_piece_1:
        with BuildLine():
            CenterArc((FILETE6_R, -FILETE6_R), FILETE6_R, 90, 90)
            Line((0, -FILETE6_R), (0, 0))
            Line((0, 0), (FILETE6_R, 0))
        make_face()
    extrude(amount=38, mode=Mode.SUBTRACT)

    # Filete7
    # the kernel refuses this fillet: 5 mm, written as the material it takes off along each edge
    with BuildSketch(Plane(origin=(19.9, -8.95, 0), x_dir=(0, 1, 0), z_dir=(-1, 0, 0))) as filete7_piece_1:
        with BuildLine():
            CenterArc((FILETE7_R, -FILETE7_R), FILETE7_R, 90, 90)
            Line((0, -FILETE7_R), (0, 0))
            Line((0, 0), (FILETE7_R, 0))
        make_face()
    extrude(amount=38, mode=Mode.SUBTRACT)

    # Filete8
    filete8_edges = [part.edges().sort_by_distance(p)[0] for p in [
        (55, 30.45, 0),
    ]]
    fillet(filete8_edges, radius=FILETE8_R)


solid = part.part
